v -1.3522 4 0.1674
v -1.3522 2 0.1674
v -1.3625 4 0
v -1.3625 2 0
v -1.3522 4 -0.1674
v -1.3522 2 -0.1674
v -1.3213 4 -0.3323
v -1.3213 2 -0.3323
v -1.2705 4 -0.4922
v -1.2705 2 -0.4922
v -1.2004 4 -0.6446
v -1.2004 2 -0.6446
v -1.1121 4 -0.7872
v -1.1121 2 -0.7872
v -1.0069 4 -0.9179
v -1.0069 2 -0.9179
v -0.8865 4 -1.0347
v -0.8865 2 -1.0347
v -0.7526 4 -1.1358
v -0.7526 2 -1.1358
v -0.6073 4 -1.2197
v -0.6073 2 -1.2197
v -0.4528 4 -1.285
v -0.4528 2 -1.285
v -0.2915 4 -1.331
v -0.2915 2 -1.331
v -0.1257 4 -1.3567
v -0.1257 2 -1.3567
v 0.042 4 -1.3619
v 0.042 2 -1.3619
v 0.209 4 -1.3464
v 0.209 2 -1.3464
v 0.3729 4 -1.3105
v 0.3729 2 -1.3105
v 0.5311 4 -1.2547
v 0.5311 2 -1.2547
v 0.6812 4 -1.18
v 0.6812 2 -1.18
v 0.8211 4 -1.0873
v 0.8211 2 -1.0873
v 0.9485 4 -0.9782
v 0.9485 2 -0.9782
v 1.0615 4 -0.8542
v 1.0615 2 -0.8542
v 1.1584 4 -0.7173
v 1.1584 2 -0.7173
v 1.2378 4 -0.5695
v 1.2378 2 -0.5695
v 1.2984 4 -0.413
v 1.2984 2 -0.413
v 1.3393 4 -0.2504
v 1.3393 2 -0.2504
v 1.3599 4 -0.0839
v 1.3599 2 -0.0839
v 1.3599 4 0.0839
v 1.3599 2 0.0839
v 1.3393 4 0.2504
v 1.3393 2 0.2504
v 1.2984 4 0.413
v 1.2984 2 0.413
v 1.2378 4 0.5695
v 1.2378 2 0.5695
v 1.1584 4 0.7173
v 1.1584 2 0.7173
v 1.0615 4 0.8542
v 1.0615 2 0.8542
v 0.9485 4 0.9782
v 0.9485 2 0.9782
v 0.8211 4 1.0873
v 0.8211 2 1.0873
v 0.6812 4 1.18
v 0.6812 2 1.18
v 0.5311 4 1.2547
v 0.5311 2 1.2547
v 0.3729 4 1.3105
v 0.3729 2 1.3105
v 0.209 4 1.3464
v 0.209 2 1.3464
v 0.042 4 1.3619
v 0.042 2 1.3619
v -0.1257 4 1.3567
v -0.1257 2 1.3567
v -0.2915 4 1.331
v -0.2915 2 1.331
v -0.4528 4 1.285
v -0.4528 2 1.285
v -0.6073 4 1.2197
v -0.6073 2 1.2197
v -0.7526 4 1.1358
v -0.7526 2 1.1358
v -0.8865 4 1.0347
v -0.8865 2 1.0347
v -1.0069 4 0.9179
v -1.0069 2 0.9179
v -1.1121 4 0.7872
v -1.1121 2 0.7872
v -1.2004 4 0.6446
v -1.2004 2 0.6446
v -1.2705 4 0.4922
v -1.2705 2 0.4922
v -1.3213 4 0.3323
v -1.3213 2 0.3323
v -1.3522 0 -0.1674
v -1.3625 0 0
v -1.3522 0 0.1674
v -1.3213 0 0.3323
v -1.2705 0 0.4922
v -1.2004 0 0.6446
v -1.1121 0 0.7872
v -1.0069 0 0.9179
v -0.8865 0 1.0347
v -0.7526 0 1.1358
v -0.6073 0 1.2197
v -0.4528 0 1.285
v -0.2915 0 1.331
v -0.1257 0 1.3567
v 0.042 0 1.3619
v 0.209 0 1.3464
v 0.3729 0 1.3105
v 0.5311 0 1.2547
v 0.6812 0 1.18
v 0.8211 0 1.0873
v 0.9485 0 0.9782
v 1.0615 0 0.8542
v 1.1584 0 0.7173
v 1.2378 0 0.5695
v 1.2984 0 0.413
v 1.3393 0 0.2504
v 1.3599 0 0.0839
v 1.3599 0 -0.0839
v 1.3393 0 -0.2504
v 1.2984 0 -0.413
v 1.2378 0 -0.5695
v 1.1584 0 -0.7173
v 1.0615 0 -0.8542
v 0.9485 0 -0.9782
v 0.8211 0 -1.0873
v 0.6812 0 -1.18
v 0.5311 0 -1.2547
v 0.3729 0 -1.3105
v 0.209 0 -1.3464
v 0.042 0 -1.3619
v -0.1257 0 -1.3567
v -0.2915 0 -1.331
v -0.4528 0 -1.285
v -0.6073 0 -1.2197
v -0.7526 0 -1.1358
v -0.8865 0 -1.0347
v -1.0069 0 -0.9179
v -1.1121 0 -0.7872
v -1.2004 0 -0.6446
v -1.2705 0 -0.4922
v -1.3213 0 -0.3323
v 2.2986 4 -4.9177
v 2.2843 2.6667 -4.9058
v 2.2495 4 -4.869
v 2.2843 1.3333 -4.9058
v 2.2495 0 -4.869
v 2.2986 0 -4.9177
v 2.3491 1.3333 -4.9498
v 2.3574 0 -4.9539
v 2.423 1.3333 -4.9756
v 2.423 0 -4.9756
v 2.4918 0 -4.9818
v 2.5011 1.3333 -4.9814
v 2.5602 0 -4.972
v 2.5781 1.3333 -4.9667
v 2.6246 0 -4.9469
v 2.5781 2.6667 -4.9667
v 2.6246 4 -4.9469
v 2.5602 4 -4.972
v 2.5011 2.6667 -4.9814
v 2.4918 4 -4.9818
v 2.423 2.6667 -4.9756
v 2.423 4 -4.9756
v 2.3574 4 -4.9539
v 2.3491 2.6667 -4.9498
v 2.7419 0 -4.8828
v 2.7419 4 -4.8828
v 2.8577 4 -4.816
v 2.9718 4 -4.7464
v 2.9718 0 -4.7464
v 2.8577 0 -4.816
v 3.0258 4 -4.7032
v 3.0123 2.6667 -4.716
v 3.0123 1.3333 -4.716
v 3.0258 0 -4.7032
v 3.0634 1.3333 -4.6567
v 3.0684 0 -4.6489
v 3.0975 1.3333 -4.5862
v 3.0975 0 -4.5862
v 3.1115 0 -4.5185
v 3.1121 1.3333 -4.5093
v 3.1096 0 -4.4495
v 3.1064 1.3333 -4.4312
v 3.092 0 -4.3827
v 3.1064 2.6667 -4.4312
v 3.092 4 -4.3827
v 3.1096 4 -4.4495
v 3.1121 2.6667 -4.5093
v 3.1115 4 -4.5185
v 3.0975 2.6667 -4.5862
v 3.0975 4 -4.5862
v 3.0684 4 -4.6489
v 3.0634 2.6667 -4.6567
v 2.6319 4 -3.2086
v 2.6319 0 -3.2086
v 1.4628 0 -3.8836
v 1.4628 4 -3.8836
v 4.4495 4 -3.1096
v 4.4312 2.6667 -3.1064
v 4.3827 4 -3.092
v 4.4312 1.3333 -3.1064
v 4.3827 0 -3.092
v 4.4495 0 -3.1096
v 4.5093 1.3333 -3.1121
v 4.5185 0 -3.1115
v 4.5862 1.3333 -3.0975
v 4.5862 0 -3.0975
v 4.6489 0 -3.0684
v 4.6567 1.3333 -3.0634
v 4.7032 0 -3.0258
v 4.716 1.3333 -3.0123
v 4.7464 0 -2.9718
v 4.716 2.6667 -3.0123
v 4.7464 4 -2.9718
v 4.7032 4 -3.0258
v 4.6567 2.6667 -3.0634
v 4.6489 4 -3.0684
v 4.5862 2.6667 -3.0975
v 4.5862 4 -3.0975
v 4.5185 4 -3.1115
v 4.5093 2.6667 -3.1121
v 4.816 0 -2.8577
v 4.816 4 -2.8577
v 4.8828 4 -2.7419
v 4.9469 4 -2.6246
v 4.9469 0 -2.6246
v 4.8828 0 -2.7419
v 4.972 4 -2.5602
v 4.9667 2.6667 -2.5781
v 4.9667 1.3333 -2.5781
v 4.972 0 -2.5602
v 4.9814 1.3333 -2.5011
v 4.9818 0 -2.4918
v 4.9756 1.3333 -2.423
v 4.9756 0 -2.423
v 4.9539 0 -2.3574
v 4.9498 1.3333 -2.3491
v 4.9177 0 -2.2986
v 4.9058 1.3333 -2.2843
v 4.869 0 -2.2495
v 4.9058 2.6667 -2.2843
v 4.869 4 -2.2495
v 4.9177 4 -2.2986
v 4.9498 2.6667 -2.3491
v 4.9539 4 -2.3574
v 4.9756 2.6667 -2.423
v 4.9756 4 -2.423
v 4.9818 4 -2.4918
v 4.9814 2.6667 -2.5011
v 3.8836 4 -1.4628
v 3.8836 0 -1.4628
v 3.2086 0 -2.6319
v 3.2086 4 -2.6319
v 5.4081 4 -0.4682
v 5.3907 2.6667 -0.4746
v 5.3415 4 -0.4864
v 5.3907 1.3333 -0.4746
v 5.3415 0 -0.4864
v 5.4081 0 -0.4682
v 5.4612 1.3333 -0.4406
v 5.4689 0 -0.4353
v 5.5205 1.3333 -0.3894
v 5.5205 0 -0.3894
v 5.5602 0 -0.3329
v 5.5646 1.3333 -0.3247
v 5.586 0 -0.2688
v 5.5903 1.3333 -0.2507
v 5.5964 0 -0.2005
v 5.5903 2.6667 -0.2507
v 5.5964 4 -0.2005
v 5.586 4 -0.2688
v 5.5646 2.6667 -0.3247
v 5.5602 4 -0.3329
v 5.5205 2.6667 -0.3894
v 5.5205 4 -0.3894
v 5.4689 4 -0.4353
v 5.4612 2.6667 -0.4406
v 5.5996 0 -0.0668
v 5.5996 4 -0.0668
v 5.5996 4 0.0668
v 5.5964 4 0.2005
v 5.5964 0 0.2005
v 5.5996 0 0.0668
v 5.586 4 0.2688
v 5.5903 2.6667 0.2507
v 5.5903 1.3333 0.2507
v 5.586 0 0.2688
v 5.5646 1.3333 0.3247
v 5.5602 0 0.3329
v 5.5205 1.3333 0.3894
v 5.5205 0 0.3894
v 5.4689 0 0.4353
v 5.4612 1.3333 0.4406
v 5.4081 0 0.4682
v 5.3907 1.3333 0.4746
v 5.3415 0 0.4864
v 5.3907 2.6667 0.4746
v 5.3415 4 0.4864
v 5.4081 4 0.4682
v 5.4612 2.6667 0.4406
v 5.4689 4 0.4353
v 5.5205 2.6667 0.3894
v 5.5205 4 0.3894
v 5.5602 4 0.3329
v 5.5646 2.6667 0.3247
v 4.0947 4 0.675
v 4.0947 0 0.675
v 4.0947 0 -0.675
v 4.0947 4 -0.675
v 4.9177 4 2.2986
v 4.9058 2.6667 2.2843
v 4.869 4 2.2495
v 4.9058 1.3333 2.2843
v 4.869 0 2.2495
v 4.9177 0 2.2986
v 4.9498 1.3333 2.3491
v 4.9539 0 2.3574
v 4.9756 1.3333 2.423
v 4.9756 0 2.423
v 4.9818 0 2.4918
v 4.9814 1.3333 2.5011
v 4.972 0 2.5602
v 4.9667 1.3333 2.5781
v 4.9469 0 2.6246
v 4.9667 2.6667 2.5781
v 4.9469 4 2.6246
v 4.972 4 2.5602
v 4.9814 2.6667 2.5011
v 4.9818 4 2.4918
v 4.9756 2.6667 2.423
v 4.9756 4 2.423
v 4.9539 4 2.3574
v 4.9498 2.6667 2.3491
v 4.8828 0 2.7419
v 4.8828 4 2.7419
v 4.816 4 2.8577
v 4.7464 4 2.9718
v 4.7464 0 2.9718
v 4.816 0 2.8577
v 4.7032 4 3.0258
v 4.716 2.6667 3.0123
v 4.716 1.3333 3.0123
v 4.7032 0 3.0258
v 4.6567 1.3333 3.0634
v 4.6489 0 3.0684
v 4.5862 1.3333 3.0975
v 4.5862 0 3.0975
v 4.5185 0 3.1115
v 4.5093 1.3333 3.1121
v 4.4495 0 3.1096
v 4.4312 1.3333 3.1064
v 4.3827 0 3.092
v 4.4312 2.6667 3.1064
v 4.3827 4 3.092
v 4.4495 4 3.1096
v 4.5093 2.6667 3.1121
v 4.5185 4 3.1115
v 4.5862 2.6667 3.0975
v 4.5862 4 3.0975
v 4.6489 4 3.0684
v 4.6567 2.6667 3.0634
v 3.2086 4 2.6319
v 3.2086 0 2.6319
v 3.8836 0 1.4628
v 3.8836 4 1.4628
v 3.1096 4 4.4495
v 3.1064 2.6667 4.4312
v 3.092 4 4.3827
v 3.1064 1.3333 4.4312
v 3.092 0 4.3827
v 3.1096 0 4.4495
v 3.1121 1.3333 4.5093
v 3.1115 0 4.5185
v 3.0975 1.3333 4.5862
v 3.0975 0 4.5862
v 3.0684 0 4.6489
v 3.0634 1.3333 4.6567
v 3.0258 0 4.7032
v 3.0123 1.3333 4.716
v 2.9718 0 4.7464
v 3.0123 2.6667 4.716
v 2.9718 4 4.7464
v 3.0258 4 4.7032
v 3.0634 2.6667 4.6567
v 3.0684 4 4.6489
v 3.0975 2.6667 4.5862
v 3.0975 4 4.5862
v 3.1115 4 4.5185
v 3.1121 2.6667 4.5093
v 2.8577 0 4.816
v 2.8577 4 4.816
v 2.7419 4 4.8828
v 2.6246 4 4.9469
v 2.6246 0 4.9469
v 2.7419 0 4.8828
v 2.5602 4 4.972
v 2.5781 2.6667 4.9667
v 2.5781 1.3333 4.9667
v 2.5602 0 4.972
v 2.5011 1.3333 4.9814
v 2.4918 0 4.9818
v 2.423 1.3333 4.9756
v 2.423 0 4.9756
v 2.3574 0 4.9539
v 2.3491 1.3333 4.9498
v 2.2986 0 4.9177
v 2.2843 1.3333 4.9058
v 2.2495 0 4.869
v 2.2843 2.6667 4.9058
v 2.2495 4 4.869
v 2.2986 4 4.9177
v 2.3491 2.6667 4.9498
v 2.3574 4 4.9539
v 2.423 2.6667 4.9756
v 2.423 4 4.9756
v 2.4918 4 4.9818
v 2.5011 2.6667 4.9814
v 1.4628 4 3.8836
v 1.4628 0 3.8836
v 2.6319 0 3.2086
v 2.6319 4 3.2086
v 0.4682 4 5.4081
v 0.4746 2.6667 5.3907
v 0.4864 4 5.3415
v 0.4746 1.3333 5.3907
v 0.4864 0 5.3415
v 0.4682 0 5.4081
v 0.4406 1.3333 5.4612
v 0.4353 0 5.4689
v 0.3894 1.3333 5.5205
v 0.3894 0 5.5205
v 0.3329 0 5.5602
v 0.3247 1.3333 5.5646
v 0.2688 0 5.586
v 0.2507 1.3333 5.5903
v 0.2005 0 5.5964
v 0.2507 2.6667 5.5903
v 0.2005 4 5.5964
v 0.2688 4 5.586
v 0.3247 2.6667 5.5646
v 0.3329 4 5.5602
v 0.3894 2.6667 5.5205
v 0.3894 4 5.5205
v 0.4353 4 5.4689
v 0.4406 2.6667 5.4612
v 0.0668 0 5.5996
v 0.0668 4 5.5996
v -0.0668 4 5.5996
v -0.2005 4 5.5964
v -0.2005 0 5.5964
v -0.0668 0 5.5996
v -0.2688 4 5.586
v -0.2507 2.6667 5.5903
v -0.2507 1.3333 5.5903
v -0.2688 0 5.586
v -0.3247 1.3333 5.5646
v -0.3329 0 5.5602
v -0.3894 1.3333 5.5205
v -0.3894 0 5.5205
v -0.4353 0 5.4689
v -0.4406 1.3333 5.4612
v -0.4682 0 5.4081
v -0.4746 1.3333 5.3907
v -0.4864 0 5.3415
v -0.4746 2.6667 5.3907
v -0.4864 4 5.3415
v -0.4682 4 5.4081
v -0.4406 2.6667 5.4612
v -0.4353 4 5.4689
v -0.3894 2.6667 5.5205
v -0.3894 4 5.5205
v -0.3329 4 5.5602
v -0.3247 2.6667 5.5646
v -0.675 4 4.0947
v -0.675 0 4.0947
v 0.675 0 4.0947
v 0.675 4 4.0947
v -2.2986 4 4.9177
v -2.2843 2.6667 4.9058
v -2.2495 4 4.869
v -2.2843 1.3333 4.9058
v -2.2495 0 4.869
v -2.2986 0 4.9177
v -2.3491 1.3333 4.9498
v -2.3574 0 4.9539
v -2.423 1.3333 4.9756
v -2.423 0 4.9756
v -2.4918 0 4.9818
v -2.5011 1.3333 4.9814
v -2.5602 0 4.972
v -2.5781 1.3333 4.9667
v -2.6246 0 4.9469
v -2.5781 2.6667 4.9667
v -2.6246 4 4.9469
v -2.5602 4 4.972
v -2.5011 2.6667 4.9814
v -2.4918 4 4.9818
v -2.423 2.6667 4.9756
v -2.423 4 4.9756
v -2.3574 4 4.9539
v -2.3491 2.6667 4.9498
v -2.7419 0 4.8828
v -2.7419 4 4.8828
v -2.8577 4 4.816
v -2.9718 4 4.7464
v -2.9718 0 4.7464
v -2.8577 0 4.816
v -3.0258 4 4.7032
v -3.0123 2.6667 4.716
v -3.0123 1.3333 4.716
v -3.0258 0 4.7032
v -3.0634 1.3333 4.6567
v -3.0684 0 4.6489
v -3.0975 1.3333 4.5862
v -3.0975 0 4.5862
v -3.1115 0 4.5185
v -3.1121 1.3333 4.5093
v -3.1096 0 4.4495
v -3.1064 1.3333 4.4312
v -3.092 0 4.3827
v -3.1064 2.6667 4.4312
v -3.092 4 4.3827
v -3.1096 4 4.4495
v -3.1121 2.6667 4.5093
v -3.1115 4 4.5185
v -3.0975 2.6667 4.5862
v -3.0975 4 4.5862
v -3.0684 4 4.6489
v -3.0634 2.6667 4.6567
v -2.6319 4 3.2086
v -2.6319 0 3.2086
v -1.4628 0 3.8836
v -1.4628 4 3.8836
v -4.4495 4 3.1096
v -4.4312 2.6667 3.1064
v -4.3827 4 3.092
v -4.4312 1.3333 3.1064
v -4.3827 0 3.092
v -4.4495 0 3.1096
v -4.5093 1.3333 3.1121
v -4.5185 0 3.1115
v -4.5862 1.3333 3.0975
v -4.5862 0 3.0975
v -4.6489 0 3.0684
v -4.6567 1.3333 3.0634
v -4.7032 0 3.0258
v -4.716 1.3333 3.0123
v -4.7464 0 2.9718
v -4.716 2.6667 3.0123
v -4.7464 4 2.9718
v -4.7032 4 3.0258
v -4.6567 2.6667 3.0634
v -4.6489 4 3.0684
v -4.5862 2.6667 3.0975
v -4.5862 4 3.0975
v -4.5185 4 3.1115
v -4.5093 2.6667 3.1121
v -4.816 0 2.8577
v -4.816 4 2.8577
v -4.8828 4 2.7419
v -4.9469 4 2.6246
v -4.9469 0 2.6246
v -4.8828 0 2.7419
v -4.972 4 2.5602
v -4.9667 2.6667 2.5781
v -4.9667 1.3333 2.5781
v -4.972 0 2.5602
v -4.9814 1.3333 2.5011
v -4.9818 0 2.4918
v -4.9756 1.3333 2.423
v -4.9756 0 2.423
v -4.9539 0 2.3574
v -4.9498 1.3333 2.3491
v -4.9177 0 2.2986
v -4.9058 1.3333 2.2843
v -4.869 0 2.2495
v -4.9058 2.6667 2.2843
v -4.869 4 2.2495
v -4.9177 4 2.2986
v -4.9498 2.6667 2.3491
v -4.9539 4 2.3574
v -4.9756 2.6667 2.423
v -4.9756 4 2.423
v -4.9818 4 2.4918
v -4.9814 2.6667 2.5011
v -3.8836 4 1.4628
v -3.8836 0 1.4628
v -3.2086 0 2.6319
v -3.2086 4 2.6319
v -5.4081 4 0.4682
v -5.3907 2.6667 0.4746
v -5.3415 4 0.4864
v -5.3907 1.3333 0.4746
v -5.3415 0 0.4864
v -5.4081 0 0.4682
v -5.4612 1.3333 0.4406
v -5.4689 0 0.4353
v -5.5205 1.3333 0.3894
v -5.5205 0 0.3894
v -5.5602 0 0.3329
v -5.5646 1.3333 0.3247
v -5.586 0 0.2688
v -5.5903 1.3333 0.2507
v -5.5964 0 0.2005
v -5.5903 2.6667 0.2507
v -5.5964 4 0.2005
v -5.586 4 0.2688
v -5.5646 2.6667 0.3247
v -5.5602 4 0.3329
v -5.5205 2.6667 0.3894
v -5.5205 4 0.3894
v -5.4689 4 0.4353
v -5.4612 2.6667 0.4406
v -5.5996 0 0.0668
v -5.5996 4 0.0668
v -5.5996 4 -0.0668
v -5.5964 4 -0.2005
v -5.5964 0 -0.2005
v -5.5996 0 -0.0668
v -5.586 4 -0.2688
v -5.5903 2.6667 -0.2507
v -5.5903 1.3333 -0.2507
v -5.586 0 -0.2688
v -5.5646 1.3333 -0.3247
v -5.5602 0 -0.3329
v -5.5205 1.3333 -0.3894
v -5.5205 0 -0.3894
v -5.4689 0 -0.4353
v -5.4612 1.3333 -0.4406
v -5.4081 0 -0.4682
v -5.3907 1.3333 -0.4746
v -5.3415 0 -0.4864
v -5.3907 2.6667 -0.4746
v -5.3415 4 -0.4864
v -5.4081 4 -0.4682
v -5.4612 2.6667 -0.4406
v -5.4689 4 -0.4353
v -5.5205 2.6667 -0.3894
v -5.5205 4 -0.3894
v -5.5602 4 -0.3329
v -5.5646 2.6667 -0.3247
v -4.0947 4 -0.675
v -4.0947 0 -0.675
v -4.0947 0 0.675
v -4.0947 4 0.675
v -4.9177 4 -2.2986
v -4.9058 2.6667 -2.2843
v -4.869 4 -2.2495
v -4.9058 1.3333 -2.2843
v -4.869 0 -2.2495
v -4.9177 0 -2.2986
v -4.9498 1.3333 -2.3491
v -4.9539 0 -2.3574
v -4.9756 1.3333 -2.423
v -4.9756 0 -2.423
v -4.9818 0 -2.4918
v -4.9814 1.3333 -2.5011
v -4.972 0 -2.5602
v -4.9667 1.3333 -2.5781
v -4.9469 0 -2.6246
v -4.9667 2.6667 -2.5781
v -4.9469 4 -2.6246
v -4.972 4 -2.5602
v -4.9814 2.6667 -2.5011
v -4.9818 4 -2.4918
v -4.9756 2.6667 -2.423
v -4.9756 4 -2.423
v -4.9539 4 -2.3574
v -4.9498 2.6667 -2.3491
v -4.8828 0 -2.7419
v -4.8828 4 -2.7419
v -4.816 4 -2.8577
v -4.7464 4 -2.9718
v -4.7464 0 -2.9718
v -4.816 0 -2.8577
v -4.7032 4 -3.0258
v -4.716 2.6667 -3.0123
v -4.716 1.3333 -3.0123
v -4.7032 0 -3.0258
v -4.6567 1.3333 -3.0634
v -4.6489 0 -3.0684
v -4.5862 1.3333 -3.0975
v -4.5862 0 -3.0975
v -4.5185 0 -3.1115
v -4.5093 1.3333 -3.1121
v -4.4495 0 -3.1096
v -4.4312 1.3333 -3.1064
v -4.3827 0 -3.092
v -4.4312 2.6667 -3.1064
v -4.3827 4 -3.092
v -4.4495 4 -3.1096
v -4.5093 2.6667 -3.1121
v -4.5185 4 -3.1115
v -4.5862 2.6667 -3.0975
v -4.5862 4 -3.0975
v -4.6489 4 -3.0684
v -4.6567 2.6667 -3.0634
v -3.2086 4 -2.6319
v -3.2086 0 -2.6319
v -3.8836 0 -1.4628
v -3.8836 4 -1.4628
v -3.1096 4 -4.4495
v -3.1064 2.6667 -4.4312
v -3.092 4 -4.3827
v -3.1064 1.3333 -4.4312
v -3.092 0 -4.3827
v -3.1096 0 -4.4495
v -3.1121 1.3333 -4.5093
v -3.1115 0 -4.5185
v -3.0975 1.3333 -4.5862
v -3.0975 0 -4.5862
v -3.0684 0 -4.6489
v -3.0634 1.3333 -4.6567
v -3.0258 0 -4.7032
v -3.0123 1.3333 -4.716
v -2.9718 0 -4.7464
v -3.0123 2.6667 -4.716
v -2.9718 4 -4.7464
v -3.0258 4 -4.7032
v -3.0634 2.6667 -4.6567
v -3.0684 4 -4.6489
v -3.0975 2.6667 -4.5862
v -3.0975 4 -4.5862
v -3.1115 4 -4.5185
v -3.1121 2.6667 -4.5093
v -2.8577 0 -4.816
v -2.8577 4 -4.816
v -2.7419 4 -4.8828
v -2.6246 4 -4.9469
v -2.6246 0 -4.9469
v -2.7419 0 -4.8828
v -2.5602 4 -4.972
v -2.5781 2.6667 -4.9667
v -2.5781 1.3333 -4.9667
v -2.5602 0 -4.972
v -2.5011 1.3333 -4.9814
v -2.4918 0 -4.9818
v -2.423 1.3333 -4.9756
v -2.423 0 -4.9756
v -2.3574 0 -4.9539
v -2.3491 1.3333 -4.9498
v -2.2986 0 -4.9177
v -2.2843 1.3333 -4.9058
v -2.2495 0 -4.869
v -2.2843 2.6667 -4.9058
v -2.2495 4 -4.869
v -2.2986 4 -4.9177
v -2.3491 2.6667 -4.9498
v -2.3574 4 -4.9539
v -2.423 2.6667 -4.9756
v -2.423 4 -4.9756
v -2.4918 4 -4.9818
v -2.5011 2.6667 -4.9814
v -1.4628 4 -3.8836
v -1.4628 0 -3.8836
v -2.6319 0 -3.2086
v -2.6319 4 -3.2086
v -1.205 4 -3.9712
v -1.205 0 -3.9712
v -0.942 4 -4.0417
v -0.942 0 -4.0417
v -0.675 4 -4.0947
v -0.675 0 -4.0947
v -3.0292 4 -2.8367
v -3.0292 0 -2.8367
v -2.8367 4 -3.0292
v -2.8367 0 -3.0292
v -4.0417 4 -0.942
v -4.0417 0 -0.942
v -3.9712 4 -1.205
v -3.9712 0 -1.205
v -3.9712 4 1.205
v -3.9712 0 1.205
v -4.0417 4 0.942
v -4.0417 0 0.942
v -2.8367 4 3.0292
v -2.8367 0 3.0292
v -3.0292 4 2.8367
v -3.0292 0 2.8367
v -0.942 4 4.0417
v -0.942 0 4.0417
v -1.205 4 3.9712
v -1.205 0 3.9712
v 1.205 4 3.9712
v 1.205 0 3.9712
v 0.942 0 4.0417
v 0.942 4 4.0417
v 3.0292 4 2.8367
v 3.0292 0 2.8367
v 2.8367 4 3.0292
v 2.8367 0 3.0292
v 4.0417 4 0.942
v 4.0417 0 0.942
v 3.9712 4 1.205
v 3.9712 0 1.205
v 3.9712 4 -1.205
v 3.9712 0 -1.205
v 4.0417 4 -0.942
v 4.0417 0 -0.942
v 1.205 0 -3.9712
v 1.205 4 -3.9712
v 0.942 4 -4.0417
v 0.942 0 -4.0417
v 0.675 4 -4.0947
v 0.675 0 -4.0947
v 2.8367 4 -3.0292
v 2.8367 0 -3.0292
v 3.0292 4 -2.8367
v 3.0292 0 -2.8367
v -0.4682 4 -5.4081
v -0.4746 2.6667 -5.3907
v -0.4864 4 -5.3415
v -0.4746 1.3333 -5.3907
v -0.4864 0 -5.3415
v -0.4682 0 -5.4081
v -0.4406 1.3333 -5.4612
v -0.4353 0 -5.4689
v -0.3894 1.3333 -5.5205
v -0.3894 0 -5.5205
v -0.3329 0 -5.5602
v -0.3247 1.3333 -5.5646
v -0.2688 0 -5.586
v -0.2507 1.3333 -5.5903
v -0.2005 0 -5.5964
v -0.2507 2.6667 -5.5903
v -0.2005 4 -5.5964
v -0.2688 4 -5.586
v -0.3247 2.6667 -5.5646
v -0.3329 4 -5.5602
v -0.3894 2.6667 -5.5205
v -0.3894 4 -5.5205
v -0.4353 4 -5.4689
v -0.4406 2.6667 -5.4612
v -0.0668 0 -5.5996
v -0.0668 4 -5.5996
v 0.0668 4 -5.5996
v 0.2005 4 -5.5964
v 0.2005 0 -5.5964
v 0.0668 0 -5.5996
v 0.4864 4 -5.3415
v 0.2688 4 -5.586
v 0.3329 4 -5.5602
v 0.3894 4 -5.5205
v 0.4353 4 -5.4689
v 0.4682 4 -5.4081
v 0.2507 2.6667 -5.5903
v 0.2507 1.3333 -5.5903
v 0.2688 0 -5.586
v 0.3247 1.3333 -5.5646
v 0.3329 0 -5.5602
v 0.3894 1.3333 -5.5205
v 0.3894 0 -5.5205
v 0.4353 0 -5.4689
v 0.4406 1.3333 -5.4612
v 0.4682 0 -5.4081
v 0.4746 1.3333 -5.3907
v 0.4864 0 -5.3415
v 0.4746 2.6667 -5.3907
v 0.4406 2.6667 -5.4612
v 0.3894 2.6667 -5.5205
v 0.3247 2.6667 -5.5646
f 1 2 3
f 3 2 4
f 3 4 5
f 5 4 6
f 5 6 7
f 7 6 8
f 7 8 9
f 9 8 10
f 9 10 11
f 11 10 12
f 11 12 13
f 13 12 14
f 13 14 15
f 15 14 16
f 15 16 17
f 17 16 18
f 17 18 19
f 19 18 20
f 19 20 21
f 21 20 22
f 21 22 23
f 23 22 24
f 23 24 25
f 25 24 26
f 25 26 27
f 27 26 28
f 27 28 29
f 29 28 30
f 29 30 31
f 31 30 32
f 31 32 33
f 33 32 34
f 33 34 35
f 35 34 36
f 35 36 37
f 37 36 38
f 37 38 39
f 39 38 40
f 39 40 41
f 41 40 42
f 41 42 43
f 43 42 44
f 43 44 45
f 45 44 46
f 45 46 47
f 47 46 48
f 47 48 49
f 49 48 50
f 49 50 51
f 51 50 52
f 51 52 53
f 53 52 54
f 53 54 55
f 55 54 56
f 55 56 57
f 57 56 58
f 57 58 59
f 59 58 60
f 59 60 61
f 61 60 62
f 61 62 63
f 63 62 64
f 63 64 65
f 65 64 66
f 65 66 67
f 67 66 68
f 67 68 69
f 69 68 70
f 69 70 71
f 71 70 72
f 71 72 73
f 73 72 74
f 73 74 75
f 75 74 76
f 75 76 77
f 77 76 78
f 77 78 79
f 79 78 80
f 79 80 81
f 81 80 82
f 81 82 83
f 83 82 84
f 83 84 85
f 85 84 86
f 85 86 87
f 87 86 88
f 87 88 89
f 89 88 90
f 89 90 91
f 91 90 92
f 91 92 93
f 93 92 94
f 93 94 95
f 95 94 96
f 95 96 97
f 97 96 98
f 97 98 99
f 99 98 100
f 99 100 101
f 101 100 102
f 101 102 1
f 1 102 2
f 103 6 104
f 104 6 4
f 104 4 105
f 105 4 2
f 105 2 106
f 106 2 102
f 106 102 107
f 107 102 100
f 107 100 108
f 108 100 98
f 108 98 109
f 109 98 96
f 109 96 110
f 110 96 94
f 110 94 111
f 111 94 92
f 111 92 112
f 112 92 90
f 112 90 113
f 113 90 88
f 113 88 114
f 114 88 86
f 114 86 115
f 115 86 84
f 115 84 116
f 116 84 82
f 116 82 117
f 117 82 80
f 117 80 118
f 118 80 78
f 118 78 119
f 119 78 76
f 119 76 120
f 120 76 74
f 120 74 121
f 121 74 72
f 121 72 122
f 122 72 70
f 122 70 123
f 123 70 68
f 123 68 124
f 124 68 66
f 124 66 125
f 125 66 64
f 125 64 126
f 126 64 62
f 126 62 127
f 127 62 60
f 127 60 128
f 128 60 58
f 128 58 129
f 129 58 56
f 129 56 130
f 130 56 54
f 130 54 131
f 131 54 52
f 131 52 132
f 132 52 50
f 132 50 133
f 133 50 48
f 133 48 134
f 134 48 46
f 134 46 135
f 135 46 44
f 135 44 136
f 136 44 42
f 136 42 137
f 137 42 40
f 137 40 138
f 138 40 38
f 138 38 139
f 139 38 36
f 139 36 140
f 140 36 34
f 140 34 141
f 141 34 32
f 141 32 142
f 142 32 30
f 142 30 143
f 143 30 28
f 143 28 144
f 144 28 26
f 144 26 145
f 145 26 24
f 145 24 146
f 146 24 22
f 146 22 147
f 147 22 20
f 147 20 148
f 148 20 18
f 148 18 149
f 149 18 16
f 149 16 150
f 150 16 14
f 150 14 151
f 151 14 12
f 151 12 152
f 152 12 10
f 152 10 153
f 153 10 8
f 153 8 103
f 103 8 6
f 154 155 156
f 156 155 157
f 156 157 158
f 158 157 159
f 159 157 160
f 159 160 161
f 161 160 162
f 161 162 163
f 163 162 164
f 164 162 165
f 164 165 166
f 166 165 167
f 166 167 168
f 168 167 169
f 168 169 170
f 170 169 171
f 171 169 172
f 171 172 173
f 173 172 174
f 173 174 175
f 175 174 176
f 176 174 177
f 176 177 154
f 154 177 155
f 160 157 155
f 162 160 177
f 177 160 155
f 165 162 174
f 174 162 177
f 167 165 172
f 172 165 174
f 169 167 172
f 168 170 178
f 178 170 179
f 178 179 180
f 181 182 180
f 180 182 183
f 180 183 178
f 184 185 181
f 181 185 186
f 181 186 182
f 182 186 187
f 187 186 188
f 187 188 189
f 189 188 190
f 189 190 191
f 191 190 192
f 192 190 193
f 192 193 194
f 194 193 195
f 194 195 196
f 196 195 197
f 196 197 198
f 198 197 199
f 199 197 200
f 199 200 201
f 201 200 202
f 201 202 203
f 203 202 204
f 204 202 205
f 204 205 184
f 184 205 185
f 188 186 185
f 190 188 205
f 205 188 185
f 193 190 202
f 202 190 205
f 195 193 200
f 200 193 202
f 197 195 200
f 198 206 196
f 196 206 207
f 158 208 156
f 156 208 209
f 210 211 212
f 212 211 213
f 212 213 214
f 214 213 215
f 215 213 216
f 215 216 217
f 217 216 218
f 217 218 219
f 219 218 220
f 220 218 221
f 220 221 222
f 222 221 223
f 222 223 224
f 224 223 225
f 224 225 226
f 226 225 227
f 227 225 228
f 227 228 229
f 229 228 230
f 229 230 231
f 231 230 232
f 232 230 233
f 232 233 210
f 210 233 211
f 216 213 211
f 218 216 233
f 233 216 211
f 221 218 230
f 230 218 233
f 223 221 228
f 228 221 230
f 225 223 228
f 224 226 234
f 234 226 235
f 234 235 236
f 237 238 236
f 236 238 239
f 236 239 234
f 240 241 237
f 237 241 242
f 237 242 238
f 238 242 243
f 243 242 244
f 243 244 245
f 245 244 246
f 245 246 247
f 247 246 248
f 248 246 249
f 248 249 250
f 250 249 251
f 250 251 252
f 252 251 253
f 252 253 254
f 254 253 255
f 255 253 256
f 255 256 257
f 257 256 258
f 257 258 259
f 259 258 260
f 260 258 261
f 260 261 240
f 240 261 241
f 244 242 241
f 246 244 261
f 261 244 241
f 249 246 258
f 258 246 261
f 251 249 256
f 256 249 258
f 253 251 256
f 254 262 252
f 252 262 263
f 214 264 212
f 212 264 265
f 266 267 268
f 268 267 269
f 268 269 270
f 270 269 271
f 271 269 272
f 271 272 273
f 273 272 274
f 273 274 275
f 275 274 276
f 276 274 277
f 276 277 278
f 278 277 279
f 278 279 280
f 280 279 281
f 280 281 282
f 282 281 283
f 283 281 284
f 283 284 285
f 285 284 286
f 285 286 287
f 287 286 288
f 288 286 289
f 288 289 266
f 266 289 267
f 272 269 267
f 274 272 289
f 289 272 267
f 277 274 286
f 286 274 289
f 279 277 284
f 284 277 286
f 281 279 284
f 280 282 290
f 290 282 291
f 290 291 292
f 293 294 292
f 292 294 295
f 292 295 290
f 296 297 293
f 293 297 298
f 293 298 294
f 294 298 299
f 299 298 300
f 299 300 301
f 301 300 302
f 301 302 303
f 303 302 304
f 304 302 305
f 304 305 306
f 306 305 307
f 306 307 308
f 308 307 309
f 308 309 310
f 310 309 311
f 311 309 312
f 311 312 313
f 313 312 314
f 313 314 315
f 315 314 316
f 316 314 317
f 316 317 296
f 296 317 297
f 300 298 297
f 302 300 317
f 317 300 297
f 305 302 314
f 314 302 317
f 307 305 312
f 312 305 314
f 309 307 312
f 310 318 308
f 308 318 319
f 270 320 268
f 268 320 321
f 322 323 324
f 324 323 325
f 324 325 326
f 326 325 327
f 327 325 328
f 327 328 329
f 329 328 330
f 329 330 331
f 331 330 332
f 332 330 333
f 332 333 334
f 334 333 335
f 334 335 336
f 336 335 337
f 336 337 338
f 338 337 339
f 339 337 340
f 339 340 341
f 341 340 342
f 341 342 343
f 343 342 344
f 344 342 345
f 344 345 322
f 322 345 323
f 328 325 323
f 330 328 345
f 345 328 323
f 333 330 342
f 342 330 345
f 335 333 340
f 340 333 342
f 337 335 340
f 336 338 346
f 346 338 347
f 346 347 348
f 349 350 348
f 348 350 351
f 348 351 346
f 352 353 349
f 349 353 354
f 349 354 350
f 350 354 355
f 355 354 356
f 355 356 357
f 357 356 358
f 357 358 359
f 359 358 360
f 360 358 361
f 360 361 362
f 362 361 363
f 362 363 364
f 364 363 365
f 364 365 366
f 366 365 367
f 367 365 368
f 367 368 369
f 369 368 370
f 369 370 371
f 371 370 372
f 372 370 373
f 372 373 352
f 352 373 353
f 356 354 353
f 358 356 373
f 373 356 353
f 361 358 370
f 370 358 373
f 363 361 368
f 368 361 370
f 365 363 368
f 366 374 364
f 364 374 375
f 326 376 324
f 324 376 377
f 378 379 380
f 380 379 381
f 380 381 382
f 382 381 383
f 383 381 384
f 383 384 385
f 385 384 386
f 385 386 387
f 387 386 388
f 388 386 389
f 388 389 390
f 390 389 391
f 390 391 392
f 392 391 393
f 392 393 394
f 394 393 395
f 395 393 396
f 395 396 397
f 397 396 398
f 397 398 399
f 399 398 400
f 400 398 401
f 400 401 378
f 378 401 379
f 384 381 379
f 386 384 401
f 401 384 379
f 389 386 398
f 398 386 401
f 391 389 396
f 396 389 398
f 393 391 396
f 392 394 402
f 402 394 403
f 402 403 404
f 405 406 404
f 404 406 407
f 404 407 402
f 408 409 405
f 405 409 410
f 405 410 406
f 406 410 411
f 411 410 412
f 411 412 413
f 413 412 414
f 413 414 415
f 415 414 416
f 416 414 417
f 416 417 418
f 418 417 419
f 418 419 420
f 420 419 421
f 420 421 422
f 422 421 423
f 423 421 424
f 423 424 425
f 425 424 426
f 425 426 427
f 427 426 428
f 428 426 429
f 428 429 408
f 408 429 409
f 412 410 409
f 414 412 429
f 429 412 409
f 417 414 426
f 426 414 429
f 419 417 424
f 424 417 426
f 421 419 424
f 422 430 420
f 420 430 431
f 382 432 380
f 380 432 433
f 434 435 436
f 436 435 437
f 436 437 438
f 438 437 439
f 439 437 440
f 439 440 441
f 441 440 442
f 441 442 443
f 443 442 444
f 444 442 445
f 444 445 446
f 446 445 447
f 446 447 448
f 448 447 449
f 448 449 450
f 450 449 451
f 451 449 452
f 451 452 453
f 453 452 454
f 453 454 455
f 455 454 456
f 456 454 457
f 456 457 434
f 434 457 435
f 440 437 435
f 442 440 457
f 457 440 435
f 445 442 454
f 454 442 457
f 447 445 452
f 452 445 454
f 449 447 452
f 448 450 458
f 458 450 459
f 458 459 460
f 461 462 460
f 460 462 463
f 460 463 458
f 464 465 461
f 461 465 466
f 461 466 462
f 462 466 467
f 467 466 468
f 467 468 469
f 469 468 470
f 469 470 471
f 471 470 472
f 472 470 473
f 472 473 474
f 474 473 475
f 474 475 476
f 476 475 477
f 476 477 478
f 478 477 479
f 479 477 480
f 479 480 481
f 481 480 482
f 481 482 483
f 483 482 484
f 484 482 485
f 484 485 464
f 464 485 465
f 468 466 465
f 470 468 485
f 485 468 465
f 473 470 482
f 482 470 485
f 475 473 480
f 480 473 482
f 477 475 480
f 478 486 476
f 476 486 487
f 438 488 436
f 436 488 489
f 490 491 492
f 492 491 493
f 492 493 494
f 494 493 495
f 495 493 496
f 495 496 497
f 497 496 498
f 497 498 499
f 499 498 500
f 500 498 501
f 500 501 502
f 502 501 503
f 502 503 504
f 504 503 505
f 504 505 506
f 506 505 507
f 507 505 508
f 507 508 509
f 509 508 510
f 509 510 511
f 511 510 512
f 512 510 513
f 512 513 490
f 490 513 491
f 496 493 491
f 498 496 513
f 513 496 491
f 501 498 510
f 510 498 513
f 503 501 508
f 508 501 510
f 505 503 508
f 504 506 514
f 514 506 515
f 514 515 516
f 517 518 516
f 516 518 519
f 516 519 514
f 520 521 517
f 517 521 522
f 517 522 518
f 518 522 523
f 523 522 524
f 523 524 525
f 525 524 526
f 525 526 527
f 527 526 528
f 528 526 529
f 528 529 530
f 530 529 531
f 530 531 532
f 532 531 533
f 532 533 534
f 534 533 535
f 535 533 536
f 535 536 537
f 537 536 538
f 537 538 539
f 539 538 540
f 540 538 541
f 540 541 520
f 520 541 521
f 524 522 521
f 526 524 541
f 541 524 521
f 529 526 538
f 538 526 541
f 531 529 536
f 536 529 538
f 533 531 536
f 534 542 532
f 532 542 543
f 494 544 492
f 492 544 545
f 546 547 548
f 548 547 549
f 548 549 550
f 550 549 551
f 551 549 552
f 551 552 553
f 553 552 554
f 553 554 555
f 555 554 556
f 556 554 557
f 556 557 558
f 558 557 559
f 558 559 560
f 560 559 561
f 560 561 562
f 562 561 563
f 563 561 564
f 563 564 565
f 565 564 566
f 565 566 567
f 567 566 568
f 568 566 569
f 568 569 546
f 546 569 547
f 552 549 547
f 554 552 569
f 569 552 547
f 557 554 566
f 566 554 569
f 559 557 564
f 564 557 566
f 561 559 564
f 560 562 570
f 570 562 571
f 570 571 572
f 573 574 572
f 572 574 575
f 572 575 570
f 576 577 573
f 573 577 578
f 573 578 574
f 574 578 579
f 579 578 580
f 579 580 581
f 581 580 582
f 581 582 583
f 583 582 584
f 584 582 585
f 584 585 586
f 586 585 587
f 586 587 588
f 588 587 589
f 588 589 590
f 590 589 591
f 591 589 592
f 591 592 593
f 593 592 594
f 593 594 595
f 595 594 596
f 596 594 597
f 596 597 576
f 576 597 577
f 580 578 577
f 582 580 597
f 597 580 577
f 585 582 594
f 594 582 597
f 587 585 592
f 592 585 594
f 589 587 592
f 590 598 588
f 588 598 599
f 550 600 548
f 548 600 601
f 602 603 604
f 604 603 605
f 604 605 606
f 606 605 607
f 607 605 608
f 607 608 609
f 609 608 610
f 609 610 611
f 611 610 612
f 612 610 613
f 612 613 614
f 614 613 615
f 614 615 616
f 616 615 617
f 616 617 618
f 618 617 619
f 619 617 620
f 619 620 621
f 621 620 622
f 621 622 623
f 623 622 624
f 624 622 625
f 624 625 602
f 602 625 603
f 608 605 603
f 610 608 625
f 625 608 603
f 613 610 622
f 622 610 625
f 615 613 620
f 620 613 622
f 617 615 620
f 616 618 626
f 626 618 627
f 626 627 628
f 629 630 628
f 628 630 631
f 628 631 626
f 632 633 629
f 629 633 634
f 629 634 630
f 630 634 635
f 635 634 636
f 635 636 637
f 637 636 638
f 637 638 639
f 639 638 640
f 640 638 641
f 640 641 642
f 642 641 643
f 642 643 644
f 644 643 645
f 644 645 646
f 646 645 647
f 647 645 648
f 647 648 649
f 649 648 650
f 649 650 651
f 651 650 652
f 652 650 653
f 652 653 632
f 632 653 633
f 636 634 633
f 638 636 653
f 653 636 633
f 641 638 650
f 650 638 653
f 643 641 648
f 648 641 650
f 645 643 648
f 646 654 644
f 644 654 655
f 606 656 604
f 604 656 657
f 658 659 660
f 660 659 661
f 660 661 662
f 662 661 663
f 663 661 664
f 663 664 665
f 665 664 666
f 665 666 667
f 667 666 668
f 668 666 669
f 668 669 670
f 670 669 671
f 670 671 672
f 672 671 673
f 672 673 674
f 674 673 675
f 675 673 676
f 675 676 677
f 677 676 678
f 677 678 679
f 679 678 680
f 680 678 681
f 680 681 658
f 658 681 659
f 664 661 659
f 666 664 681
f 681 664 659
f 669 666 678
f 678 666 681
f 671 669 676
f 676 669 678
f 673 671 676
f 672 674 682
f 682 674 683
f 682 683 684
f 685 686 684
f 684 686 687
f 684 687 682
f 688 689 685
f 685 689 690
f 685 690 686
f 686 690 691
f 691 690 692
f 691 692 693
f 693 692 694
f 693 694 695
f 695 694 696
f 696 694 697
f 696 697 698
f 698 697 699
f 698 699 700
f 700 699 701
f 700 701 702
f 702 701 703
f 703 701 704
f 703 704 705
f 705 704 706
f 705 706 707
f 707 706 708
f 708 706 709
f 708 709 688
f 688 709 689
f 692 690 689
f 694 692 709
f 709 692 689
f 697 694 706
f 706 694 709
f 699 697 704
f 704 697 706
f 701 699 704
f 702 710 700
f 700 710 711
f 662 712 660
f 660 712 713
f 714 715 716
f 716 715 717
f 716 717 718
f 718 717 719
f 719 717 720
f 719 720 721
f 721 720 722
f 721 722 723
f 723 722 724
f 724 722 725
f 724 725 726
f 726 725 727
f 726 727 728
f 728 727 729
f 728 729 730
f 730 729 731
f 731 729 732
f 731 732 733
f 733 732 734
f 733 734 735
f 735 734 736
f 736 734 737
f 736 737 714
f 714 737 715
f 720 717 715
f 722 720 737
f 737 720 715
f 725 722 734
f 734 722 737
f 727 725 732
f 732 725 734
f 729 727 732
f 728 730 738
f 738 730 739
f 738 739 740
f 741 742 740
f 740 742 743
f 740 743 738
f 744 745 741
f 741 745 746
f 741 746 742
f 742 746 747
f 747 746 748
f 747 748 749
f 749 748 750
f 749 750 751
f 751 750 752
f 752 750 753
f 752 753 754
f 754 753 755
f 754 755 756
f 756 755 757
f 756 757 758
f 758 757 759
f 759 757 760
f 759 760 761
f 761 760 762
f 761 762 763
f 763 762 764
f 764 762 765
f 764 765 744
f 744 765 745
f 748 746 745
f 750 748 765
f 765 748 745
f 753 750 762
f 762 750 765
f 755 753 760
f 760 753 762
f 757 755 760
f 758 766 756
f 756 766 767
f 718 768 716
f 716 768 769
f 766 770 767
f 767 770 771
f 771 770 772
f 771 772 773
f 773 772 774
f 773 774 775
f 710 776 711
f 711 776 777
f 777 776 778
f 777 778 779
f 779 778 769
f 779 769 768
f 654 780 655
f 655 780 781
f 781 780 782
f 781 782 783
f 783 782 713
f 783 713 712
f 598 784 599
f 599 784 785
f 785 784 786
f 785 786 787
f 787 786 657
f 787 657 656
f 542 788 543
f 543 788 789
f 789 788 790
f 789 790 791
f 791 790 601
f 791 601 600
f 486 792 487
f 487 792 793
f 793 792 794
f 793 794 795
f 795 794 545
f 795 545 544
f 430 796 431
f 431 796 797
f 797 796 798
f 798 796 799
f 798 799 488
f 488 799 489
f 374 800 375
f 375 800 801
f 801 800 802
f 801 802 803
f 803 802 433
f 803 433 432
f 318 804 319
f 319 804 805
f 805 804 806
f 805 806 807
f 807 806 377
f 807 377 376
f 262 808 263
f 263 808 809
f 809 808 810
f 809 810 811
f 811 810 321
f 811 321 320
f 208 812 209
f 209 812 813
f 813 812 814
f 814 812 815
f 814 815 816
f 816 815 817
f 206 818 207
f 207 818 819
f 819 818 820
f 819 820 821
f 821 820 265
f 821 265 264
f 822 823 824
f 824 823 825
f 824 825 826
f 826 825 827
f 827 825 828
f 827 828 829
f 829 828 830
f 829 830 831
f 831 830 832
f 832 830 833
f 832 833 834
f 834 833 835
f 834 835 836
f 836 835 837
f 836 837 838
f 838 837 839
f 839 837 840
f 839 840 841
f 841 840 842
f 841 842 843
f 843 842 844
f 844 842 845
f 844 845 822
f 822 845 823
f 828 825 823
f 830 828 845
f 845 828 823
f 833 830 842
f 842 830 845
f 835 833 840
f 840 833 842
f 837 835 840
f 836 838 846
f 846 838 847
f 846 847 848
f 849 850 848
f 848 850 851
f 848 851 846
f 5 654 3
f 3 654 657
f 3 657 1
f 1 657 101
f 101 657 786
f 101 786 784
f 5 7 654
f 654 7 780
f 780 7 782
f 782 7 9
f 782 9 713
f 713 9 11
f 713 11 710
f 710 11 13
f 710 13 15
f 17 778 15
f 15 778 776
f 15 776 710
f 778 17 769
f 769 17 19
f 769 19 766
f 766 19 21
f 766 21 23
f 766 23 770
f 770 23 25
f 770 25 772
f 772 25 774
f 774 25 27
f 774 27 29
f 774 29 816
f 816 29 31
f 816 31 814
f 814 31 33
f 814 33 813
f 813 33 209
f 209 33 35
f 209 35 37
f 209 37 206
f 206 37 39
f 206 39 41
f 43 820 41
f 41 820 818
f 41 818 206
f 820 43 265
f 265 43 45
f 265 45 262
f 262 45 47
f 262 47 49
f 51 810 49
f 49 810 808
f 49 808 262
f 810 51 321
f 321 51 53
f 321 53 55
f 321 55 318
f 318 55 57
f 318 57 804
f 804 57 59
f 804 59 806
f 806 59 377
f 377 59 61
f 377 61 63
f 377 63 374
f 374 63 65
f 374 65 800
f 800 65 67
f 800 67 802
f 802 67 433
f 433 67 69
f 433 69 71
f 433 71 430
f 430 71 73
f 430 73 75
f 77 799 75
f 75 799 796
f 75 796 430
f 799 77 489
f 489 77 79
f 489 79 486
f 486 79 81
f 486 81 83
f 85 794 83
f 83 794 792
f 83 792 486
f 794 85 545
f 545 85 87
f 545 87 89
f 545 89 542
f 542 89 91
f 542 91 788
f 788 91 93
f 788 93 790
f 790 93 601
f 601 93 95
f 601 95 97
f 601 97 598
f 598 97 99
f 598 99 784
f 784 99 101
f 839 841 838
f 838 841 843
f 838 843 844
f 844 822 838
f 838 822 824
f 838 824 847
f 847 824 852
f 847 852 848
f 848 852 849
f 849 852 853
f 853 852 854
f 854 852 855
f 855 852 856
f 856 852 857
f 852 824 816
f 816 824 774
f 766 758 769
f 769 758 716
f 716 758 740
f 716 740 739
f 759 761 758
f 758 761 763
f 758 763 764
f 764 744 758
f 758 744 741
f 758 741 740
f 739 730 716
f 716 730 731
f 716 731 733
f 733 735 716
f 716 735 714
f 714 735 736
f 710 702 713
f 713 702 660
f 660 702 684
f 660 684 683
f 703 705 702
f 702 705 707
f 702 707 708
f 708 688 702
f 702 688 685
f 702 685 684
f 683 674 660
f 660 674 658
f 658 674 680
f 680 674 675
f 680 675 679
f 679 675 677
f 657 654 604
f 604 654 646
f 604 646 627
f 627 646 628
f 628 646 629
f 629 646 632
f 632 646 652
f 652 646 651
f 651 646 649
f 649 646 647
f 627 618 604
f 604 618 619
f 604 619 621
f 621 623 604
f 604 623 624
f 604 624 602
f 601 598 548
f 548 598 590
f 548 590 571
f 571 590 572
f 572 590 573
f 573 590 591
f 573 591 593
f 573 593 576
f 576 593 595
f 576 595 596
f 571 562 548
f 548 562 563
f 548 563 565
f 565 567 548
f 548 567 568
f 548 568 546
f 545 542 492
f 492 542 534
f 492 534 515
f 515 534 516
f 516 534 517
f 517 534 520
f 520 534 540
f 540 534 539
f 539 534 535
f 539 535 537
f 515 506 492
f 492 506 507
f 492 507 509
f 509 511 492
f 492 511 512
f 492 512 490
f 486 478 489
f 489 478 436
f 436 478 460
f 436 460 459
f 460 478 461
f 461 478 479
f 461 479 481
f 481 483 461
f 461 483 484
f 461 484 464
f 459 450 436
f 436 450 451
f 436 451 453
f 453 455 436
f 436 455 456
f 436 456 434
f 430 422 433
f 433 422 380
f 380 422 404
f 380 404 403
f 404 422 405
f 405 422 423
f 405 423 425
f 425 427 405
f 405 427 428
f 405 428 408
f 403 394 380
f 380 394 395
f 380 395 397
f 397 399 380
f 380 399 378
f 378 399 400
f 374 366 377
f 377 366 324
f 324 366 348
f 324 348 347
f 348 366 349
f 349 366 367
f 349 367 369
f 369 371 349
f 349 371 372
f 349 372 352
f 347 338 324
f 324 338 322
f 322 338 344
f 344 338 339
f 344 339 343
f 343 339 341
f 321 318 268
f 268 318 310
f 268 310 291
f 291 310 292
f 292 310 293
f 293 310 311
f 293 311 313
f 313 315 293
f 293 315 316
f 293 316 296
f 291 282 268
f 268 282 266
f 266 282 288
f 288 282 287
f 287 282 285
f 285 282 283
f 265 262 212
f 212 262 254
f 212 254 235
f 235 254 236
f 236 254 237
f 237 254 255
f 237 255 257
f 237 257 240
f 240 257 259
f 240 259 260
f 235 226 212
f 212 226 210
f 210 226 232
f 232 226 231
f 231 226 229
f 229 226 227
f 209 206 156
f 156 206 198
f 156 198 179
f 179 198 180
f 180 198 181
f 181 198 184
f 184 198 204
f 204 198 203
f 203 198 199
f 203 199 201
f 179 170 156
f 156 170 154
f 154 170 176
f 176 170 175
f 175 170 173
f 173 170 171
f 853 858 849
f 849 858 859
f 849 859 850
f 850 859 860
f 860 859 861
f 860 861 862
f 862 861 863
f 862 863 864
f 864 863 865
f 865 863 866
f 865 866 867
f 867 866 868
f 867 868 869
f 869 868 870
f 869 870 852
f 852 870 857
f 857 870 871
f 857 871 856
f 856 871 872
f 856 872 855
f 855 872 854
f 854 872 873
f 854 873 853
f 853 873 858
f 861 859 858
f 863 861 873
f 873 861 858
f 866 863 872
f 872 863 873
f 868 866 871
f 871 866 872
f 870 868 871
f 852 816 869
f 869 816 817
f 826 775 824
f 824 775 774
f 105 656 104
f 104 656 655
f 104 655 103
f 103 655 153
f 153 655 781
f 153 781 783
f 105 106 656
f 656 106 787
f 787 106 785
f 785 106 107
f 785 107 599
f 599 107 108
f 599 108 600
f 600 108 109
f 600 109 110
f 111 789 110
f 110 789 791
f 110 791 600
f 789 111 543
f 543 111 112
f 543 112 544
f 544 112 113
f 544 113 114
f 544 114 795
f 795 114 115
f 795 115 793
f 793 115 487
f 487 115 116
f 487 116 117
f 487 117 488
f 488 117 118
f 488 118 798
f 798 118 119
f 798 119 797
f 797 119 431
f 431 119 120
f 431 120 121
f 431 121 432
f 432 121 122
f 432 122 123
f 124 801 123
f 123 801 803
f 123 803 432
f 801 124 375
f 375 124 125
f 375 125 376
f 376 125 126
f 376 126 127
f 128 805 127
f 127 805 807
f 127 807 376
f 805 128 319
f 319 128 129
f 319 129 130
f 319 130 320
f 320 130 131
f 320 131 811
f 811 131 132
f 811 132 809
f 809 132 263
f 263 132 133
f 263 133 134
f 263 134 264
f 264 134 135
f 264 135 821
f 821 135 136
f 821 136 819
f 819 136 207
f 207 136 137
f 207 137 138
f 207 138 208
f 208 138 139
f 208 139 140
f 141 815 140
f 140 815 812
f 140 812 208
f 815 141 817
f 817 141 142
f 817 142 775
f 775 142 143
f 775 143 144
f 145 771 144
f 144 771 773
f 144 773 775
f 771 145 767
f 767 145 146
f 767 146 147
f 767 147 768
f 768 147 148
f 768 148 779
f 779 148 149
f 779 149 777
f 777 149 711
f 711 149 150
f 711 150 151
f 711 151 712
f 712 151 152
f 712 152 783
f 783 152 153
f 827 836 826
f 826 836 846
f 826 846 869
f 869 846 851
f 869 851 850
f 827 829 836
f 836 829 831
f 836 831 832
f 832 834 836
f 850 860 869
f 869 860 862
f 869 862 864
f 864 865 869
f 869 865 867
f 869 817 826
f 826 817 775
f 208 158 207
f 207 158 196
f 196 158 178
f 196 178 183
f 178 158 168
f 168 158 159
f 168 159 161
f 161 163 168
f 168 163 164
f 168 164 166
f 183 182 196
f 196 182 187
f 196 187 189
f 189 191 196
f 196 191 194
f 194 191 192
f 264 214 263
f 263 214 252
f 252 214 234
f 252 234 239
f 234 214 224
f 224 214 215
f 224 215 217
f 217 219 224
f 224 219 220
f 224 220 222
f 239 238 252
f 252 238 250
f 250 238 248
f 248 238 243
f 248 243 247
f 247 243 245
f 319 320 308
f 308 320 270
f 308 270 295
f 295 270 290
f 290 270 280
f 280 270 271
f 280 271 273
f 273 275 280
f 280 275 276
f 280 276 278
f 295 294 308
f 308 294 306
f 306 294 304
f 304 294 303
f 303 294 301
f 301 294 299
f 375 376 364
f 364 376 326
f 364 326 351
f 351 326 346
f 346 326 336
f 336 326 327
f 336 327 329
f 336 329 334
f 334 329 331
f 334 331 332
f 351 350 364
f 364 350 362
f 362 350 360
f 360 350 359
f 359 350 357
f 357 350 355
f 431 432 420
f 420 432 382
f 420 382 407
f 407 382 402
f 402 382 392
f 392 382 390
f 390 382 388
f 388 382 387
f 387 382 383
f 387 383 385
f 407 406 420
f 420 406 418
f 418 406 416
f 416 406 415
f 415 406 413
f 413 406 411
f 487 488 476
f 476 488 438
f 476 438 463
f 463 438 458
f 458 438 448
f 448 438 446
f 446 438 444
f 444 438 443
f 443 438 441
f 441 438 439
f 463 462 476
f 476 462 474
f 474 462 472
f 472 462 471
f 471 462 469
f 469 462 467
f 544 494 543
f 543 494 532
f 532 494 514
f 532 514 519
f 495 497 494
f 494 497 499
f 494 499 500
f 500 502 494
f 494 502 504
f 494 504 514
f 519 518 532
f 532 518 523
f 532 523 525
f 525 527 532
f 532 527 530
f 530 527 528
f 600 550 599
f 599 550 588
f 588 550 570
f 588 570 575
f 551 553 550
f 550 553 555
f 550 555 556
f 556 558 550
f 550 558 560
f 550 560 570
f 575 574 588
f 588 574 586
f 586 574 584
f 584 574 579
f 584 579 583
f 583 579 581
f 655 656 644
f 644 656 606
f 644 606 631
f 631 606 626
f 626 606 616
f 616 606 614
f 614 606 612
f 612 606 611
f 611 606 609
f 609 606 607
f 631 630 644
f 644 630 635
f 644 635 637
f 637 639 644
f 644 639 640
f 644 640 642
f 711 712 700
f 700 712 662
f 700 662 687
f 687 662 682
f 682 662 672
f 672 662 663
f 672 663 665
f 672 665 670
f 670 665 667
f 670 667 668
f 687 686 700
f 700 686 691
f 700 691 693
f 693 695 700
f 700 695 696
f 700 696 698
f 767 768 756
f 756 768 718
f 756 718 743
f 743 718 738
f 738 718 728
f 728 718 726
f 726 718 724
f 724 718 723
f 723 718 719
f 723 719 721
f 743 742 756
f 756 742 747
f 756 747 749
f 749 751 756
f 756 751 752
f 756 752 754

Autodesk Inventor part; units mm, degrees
ref_plane "YZ Plane" through (0, 0, 0) normal (1, 0, 0) x (0, 1, 0)
ref_plane "XZ Plane" through (0, 0, 0) normal (0, 1, 0) x (-1, 0, 0)
ref_plane "XY Plane" through (0, 0, 0) normal (0, 0, 1) x (1, 0, 0)
sketch "Sketch1" plane through (0, 0, 0) normal (0, 1, 0) x (-1, 0, 0)
  arc A0 (0.45, -5.5819) -> (-0.45, -5.5819) centre (0, 0) ccw construction
  circle A1 centre (0, 0) radius 4.15
  line L0 (-0.45, -5.5819) -> (-0.675, -4.0947)
  line L1 (0.675, -4.0947) -> (0.45, -5.5819)
  line L2 (0.675, -4.0947) -> (-0.675, -4.0947) construction
  line L3 (0.45, -5.5819) -> (-0.45, -5.5819) construction
  arc A2 (-0.45, -5.5819) -> (0.45, -5.5819) centre (0, 0) ccw
  circle A3 centre (0, 0) radius 1.3625
  dimension "d1" = 11.2
  dimension "d2" = 8.3
  dimension "d3" = 0.9
  dimension "d4" = 1.35
  dimension "d13" = 2.725
extrude "Extrusion1" add sketch "Sketch1" along normal blind 4 contours A1 | A3
extrude "Extrusion2" add sketch "Sketch1" along normal blind 4 contours A1 L1 A2 L0
fillet "Fillet1" radius 0.3 2 edges at (0.45, 2, -5.5819) (-0.45, 2, -5.5819)
pattern_circular "Circular Pattern1" count 12 over 360 about axis through (0, 0, 0) along (0, 1, 0) of "Extrusion2", "Fillet1"
extrude "Extrusion3" cut sketch "Sketch1" along normal blind 4 contours A3
properties part number "Motor Shaft Gear" material "ABS Plastic"
